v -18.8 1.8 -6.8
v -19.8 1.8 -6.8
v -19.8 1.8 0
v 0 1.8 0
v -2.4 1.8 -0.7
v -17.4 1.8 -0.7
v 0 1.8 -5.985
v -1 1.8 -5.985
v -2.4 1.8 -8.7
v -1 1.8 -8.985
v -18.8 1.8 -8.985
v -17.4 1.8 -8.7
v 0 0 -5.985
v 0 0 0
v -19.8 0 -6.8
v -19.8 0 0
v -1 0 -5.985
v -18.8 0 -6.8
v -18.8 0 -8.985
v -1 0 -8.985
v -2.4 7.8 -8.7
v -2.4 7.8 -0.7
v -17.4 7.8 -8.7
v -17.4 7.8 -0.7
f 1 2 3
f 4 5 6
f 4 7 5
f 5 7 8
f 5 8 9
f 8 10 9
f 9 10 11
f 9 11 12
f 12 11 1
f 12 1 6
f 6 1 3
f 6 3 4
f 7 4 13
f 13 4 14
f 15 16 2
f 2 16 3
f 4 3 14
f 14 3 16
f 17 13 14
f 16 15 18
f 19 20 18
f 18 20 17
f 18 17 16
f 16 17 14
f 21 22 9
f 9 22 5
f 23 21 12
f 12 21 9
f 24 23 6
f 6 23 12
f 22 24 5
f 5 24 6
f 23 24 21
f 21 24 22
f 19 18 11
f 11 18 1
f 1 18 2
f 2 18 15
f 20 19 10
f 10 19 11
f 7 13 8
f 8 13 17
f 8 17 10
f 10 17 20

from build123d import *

# Parameters (mm, degrees)
SKETCH_1_W          = 19.8
SKETCH_1_H          = 9.8
EXTRUDE_1_DEPTH     = 1.8
SKETCH_2_W          = 15
SKETCH_2_H          = 8
EXTRUDE_2_DEPTH     = 6
SKETCH_3_W          = 1
SKETCH_3_H          = 3
CUT_EXTRUDE_1_DEPTH = 3
SKETCH_4_W          = 19.16
SKETCH_4_H          = 0.95
CUT_EXTRUDE_2_DEPTH = 3
SKETCH_7_W          = 1
SKETCH_7_H          = 3
CUT_EXTRUDE_4_DEPTH = 3


with BuildPart() as part:
    # 草图1 → 凸台-拉伸1 (new body)
    with BuildSketch(Plane(origin=(0, 0, 0), x_dir=(1, 0, 0), z_dir=(0, 1, 0))):
        with Locations((-9.9, 4.9)):
            Rectangle(SKETCH_1_W, SKETCH_1_H)
    extrude(amount=EXTRUDE_1_DEPTH)

    # 草图2 → 凸台-拉伸2 (add)
    with BuildSketch(Plane(origin=(0, 1.8, 0), x_dir=(1, 0, 0), z_dir=(0, 1, 0))):
        with Locations((-9.9, 4.7)):
            Rectangle(SKETCH_2_W, SKETCH_2_H)
    extrude(amount=EXTRUDE_2_DEPTH)

    # 草图3 → 切除-拉伸1 (cut)
    with BuildSketch(Plane(origin=(0, 1.8, 0), x_dir=(1, 0, 0), z_dir=(0, 1, 0))):
        with Locations((-19.3, 8.3)):
            Rectangle(SKETCH_3_W, SKETCH_3_H)
    extrude(amount=-CUT_EXTRUDE_1_DEPTH, mode=Mode.SUBTRACT)

    # 草图4 → 切除-拉伸2 (cut)
    with BuildSketch(Plane(origin=(0, 1.8, 0), x_dir=(1, 0, 0), z_dir=(0, 1, 0))):
        with Locations((-9.58, 9.460376994)):
            Rectangle(SKETCH_4_W, SKETCH_4_H)
    extrude(amount=-CUT_EXTRUDE_2_DEPTH, mode=Mode.SUBTRACT)

    # 草图7 → 切除-拉伸4 (cut)
    with BuildSketch(Plane(origin=(0, 1.8, 0), x_dir=(1, 0, 0), z_dir=(0, 1, 0))):
        with Locations((-0.5, 7.485376994)):
            Rectangle(SKETCH_7_W, SKETCH_7_H)
    extrude(amount=-CUT_EXTRUDE_4_DEPTH, mode=Mode.SUBTRACT)


solid = part.part
